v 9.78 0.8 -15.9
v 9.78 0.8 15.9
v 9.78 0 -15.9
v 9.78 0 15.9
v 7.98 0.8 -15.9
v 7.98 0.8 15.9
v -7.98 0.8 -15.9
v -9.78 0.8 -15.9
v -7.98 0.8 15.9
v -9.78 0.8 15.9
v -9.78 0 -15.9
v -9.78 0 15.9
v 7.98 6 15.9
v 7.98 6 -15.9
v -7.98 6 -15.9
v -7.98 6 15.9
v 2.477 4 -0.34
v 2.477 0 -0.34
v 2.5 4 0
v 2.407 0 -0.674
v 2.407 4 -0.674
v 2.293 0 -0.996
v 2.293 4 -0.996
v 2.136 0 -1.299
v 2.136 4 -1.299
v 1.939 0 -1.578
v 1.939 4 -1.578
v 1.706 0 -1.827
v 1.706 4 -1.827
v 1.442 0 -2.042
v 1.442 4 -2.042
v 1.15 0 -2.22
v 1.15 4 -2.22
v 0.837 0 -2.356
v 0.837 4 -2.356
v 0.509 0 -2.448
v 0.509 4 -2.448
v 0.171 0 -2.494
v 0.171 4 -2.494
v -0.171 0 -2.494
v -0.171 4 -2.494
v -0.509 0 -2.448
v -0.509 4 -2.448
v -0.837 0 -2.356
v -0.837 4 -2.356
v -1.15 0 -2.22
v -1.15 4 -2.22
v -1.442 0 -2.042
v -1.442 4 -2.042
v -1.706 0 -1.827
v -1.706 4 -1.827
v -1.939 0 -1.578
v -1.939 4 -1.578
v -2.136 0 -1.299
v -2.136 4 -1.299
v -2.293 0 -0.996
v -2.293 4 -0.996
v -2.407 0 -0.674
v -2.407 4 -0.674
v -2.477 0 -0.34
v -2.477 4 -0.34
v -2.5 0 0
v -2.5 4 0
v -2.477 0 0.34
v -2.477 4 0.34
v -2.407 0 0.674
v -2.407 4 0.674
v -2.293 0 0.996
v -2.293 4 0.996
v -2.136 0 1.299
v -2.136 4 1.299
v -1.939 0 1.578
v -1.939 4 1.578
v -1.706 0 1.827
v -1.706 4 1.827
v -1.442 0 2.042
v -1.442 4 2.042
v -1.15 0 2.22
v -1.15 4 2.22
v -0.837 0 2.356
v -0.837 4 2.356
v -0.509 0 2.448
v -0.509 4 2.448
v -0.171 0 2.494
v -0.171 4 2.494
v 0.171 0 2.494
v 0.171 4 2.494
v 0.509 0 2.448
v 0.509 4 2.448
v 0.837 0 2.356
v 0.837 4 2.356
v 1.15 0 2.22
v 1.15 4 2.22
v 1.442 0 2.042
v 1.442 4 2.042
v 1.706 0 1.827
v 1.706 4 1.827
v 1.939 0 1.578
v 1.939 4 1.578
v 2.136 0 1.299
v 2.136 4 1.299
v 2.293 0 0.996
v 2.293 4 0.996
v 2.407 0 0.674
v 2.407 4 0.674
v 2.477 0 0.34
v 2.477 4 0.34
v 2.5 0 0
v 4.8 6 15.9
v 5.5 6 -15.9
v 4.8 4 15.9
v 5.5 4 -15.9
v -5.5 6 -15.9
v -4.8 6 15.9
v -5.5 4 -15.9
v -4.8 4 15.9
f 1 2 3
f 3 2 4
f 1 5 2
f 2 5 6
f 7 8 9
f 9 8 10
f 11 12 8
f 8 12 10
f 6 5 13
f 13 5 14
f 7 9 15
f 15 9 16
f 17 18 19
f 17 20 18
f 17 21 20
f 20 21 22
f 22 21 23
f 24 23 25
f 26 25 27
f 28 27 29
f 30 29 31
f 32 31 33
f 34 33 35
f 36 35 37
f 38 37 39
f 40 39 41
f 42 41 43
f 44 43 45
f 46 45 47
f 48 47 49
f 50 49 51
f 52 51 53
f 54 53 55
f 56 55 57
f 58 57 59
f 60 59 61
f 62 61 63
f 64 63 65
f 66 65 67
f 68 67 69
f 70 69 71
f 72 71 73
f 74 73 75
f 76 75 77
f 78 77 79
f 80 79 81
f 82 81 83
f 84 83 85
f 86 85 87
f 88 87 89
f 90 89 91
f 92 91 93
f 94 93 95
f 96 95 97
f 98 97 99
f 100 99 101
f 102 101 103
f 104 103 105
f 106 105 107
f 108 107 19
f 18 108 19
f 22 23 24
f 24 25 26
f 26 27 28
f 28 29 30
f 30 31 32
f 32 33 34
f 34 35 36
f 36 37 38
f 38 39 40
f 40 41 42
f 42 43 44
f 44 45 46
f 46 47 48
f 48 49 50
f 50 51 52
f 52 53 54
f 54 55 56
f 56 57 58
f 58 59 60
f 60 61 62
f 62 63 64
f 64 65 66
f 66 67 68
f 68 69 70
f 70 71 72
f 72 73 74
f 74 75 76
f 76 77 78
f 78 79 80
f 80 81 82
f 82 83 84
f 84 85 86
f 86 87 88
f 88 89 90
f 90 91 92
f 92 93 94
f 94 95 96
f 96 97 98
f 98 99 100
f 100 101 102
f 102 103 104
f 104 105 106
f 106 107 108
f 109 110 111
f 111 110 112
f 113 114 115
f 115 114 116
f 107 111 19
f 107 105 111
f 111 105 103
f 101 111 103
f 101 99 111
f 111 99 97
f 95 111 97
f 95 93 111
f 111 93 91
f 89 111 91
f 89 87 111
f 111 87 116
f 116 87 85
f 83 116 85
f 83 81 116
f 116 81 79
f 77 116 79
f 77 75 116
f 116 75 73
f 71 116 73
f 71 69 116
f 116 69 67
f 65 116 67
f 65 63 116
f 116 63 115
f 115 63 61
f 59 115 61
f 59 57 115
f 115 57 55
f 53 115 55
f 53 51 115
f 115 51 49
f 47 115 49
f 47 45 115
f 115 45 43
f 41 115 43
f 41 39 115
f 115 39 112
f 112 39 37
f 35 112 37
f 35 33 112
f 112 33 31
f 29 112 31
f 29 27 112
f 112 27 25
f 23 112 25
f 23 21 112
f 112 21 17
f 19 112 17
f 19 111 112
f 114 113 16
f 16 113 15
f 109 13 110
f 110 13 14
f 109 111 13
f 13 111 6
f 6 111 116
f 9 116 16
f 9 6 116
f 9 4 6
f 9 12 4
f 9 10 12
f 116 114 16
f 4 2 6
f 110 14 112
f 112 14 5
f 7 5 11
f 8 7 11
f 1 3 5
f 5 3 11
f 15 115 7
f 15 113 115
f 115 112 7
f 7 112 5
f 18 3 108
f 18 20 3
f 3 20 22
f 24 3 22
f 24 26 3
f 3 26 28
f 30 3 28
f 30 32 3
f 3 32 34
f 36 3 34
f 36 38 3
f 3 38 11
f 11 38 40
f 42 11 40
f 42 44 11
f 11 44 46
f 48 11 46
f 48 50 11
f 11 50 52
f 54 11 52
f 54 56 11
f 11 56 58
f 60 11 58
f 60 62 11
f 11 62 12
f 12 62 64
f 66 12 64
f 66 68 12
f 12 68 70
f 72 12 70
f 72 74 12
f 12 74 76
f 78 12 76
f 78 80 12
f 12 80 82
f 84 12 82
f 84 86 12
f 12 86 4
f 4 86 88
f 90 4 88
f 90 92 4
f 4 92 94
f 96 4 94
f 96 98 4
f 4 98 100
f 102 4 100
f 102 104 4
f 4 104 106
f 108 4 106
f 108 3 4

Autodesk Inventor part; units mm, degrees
ref_plane "YZ Plane" through (0, 0, 0) normal (1, 0, 0) x (0, 1, 0)
ref_plane "XZ Plane" through (0, 0, 0) normal (0, 1, 0) x (-1, 0, 0)
ref_plane "XY Plane" through (0, 0, 0) normal (0, 0, 1) x (1, 0, 0)
sketch "Sketch1" plane through (0, 0, 0) normal (0, 1, 0) x (-1, 0, 0)
  line L0 (7.98, 15.9) -> (-7.98, 15.9)
  line L1 (-7.98, 15.9) -> (-7.98, -15.9)
  line L2 (-7.98, -15.9) -> (7.98, -15.9)
  line L3 (7.98, -15.9) -> (7.98, 15.9)
  line L4 (7.98, 15.9) -> (-7.98, -15.9) construction
  line L5 (-7.98, 15.9) -> (7.98, -15.9) construction
  point P0 (0, 0)
  dimension "d0" = 31.8
  dimension "d1" = 15.96
extrude "adapter-arm" add sketch "Sketch1" along normal blind 6
sketch "fanslot" plane through (0, 6, 0) normal (0, 1, 0) x (1, 0, 0)
  line L0 (-4.8, -15.9) -> (4.8, -15.9)
  line L1 (4.8, -15.9) -> (5.5, 15.9)
  line L2 (5.5, 15.9) -> (-5.5, 15.9)
  line L3 (-5.5, 15.9) -> (-4.8, -15.9)
  line L4 (0, 16.157) -> (0, -15.9695) construction
  line L5 (-7.98, -15.9) -> (7.98, -15.9) construction
  line L6 (7.98, 15.9) -> (-7.98, 15.9) construction
  point P0 (0, 0)
  point P1 (0, -15.9)
  point P2 (0, 15.9)
  point P3 (-5.98, -15.9)
  point P4 (5.98, -15.9)
  point P5 (5.98, 15.9)
  point P6 (-5.98, 15.9)
  dimension "d21" = 11
  dimension "d22" = 9.6
extrude "Extrusion3" cut sketch "fanslot" against normal blind 2
sketch "Sketch5" plane through (0, 0, 0) normal (0, -1, 0) x (1, 0, 0)
  circle A0 centre (0, 0) radius 2.5
  dimension "d25" = 5
extrude "Extrusion4" cut sketch "Sketch5" against normal up to next
sketch "Sketch6" plane through (-7.98, 0, 15.9) normal (0, 0, 1) x (1, 0, 0)
  line L0 (15.96, 0) -> (17.76, 0)
  line L1 (17.76, 0) -> (17.76, 0.8)
  line L2 (17.76, 0.8) -> (15.96, 0.8)
  line L3 (15.96, 0.8) -> (15.96, 0)
  line L4 (0, 0) -> (-1.8, 0)
  line L5 (-1.8, 0) -> (-1.8, 0.8)
  line L6 (-1.8, 0.8) -> (0, 0.8)
  line L7 (0, 0.8) -> (0, 0)
  point P0 (7.98, 0)
  dimension "d28" = 1.8
  dimension "d29" = 0.8
  dimension "d30" = 1.8
  dimension "d31" = 0.8
extrude "Extrusion5" add sketch "Sketch6" against normal up to surface (31.8 mm away)
equation "\"d2\" = adapterwallthick"
equation "\"d21\" = fanhb"
equation "\"d22\" = fanhs"
equation "\"d23\" = adapterwallslotd"
equation "\"printer3dtolerance\" = 0.1"
equation "\"wallw\" = 42"
equation "\"wallh\" = 44"
equation "\"cornerrad\" = 2"
equation "\"baseextra\" = 2"
equation "\"wall1_thick\" = 8"
equation "\"wall2_thick\" = 6.4"
equation "\"wall3_thick\" = 4"
equation "\"wall1slot\" = 8.1"
equation "\"wall2slot\" = 6.5"
equation "\"wall3slot\" = 4.1"
equation "\"gap2\" = 28"
equation "\"baseh\" = 79"
equation "\"basew\" = 44"
equation "\"base_thick\" = 6"
equation "\"base_slots_depth\" = 4"
equation "\"servobigcircledia\" = 11.6"
equation "\"servosmallcircledia\" = 5.9"
equation "\"servo9gw\" = 22.8"
equation "\"servomounth\" = 4"
equation "\"servomountsquare\" = 4"
equation "\"servopolygonr\" = 6.1"
equation "\"servopolygonl\" = 5.9"
equation "\"distancefrombottom\" = 34"
equation "\"distancefromleft\" = 22"
equation "\"wall3slotd\" = 2"
equation "\"wall3slotw\" = 36"
equation "\"adapterh\" = 16"
equation "\"adapterw\" = 32"
equation "\"armw\" = 34"
equation "\"armslotd\" = 2"
equation "\"armthick\" = 3"
equation "\"fanhb\" = 11"
equation "\"fanhs\" = 9.6"
equation "\"adapterwallthick\" = 6"
equation "\"adapterwallslotd\" = 2"
equation "\"hornscrewheadd\" = 3"
equation "\"hornscrewholed\" = 2"
equation "\"hornthick\" = 1.5"
equation "\"armhornthick\" = 3"
properties part number "adapter-wall"
